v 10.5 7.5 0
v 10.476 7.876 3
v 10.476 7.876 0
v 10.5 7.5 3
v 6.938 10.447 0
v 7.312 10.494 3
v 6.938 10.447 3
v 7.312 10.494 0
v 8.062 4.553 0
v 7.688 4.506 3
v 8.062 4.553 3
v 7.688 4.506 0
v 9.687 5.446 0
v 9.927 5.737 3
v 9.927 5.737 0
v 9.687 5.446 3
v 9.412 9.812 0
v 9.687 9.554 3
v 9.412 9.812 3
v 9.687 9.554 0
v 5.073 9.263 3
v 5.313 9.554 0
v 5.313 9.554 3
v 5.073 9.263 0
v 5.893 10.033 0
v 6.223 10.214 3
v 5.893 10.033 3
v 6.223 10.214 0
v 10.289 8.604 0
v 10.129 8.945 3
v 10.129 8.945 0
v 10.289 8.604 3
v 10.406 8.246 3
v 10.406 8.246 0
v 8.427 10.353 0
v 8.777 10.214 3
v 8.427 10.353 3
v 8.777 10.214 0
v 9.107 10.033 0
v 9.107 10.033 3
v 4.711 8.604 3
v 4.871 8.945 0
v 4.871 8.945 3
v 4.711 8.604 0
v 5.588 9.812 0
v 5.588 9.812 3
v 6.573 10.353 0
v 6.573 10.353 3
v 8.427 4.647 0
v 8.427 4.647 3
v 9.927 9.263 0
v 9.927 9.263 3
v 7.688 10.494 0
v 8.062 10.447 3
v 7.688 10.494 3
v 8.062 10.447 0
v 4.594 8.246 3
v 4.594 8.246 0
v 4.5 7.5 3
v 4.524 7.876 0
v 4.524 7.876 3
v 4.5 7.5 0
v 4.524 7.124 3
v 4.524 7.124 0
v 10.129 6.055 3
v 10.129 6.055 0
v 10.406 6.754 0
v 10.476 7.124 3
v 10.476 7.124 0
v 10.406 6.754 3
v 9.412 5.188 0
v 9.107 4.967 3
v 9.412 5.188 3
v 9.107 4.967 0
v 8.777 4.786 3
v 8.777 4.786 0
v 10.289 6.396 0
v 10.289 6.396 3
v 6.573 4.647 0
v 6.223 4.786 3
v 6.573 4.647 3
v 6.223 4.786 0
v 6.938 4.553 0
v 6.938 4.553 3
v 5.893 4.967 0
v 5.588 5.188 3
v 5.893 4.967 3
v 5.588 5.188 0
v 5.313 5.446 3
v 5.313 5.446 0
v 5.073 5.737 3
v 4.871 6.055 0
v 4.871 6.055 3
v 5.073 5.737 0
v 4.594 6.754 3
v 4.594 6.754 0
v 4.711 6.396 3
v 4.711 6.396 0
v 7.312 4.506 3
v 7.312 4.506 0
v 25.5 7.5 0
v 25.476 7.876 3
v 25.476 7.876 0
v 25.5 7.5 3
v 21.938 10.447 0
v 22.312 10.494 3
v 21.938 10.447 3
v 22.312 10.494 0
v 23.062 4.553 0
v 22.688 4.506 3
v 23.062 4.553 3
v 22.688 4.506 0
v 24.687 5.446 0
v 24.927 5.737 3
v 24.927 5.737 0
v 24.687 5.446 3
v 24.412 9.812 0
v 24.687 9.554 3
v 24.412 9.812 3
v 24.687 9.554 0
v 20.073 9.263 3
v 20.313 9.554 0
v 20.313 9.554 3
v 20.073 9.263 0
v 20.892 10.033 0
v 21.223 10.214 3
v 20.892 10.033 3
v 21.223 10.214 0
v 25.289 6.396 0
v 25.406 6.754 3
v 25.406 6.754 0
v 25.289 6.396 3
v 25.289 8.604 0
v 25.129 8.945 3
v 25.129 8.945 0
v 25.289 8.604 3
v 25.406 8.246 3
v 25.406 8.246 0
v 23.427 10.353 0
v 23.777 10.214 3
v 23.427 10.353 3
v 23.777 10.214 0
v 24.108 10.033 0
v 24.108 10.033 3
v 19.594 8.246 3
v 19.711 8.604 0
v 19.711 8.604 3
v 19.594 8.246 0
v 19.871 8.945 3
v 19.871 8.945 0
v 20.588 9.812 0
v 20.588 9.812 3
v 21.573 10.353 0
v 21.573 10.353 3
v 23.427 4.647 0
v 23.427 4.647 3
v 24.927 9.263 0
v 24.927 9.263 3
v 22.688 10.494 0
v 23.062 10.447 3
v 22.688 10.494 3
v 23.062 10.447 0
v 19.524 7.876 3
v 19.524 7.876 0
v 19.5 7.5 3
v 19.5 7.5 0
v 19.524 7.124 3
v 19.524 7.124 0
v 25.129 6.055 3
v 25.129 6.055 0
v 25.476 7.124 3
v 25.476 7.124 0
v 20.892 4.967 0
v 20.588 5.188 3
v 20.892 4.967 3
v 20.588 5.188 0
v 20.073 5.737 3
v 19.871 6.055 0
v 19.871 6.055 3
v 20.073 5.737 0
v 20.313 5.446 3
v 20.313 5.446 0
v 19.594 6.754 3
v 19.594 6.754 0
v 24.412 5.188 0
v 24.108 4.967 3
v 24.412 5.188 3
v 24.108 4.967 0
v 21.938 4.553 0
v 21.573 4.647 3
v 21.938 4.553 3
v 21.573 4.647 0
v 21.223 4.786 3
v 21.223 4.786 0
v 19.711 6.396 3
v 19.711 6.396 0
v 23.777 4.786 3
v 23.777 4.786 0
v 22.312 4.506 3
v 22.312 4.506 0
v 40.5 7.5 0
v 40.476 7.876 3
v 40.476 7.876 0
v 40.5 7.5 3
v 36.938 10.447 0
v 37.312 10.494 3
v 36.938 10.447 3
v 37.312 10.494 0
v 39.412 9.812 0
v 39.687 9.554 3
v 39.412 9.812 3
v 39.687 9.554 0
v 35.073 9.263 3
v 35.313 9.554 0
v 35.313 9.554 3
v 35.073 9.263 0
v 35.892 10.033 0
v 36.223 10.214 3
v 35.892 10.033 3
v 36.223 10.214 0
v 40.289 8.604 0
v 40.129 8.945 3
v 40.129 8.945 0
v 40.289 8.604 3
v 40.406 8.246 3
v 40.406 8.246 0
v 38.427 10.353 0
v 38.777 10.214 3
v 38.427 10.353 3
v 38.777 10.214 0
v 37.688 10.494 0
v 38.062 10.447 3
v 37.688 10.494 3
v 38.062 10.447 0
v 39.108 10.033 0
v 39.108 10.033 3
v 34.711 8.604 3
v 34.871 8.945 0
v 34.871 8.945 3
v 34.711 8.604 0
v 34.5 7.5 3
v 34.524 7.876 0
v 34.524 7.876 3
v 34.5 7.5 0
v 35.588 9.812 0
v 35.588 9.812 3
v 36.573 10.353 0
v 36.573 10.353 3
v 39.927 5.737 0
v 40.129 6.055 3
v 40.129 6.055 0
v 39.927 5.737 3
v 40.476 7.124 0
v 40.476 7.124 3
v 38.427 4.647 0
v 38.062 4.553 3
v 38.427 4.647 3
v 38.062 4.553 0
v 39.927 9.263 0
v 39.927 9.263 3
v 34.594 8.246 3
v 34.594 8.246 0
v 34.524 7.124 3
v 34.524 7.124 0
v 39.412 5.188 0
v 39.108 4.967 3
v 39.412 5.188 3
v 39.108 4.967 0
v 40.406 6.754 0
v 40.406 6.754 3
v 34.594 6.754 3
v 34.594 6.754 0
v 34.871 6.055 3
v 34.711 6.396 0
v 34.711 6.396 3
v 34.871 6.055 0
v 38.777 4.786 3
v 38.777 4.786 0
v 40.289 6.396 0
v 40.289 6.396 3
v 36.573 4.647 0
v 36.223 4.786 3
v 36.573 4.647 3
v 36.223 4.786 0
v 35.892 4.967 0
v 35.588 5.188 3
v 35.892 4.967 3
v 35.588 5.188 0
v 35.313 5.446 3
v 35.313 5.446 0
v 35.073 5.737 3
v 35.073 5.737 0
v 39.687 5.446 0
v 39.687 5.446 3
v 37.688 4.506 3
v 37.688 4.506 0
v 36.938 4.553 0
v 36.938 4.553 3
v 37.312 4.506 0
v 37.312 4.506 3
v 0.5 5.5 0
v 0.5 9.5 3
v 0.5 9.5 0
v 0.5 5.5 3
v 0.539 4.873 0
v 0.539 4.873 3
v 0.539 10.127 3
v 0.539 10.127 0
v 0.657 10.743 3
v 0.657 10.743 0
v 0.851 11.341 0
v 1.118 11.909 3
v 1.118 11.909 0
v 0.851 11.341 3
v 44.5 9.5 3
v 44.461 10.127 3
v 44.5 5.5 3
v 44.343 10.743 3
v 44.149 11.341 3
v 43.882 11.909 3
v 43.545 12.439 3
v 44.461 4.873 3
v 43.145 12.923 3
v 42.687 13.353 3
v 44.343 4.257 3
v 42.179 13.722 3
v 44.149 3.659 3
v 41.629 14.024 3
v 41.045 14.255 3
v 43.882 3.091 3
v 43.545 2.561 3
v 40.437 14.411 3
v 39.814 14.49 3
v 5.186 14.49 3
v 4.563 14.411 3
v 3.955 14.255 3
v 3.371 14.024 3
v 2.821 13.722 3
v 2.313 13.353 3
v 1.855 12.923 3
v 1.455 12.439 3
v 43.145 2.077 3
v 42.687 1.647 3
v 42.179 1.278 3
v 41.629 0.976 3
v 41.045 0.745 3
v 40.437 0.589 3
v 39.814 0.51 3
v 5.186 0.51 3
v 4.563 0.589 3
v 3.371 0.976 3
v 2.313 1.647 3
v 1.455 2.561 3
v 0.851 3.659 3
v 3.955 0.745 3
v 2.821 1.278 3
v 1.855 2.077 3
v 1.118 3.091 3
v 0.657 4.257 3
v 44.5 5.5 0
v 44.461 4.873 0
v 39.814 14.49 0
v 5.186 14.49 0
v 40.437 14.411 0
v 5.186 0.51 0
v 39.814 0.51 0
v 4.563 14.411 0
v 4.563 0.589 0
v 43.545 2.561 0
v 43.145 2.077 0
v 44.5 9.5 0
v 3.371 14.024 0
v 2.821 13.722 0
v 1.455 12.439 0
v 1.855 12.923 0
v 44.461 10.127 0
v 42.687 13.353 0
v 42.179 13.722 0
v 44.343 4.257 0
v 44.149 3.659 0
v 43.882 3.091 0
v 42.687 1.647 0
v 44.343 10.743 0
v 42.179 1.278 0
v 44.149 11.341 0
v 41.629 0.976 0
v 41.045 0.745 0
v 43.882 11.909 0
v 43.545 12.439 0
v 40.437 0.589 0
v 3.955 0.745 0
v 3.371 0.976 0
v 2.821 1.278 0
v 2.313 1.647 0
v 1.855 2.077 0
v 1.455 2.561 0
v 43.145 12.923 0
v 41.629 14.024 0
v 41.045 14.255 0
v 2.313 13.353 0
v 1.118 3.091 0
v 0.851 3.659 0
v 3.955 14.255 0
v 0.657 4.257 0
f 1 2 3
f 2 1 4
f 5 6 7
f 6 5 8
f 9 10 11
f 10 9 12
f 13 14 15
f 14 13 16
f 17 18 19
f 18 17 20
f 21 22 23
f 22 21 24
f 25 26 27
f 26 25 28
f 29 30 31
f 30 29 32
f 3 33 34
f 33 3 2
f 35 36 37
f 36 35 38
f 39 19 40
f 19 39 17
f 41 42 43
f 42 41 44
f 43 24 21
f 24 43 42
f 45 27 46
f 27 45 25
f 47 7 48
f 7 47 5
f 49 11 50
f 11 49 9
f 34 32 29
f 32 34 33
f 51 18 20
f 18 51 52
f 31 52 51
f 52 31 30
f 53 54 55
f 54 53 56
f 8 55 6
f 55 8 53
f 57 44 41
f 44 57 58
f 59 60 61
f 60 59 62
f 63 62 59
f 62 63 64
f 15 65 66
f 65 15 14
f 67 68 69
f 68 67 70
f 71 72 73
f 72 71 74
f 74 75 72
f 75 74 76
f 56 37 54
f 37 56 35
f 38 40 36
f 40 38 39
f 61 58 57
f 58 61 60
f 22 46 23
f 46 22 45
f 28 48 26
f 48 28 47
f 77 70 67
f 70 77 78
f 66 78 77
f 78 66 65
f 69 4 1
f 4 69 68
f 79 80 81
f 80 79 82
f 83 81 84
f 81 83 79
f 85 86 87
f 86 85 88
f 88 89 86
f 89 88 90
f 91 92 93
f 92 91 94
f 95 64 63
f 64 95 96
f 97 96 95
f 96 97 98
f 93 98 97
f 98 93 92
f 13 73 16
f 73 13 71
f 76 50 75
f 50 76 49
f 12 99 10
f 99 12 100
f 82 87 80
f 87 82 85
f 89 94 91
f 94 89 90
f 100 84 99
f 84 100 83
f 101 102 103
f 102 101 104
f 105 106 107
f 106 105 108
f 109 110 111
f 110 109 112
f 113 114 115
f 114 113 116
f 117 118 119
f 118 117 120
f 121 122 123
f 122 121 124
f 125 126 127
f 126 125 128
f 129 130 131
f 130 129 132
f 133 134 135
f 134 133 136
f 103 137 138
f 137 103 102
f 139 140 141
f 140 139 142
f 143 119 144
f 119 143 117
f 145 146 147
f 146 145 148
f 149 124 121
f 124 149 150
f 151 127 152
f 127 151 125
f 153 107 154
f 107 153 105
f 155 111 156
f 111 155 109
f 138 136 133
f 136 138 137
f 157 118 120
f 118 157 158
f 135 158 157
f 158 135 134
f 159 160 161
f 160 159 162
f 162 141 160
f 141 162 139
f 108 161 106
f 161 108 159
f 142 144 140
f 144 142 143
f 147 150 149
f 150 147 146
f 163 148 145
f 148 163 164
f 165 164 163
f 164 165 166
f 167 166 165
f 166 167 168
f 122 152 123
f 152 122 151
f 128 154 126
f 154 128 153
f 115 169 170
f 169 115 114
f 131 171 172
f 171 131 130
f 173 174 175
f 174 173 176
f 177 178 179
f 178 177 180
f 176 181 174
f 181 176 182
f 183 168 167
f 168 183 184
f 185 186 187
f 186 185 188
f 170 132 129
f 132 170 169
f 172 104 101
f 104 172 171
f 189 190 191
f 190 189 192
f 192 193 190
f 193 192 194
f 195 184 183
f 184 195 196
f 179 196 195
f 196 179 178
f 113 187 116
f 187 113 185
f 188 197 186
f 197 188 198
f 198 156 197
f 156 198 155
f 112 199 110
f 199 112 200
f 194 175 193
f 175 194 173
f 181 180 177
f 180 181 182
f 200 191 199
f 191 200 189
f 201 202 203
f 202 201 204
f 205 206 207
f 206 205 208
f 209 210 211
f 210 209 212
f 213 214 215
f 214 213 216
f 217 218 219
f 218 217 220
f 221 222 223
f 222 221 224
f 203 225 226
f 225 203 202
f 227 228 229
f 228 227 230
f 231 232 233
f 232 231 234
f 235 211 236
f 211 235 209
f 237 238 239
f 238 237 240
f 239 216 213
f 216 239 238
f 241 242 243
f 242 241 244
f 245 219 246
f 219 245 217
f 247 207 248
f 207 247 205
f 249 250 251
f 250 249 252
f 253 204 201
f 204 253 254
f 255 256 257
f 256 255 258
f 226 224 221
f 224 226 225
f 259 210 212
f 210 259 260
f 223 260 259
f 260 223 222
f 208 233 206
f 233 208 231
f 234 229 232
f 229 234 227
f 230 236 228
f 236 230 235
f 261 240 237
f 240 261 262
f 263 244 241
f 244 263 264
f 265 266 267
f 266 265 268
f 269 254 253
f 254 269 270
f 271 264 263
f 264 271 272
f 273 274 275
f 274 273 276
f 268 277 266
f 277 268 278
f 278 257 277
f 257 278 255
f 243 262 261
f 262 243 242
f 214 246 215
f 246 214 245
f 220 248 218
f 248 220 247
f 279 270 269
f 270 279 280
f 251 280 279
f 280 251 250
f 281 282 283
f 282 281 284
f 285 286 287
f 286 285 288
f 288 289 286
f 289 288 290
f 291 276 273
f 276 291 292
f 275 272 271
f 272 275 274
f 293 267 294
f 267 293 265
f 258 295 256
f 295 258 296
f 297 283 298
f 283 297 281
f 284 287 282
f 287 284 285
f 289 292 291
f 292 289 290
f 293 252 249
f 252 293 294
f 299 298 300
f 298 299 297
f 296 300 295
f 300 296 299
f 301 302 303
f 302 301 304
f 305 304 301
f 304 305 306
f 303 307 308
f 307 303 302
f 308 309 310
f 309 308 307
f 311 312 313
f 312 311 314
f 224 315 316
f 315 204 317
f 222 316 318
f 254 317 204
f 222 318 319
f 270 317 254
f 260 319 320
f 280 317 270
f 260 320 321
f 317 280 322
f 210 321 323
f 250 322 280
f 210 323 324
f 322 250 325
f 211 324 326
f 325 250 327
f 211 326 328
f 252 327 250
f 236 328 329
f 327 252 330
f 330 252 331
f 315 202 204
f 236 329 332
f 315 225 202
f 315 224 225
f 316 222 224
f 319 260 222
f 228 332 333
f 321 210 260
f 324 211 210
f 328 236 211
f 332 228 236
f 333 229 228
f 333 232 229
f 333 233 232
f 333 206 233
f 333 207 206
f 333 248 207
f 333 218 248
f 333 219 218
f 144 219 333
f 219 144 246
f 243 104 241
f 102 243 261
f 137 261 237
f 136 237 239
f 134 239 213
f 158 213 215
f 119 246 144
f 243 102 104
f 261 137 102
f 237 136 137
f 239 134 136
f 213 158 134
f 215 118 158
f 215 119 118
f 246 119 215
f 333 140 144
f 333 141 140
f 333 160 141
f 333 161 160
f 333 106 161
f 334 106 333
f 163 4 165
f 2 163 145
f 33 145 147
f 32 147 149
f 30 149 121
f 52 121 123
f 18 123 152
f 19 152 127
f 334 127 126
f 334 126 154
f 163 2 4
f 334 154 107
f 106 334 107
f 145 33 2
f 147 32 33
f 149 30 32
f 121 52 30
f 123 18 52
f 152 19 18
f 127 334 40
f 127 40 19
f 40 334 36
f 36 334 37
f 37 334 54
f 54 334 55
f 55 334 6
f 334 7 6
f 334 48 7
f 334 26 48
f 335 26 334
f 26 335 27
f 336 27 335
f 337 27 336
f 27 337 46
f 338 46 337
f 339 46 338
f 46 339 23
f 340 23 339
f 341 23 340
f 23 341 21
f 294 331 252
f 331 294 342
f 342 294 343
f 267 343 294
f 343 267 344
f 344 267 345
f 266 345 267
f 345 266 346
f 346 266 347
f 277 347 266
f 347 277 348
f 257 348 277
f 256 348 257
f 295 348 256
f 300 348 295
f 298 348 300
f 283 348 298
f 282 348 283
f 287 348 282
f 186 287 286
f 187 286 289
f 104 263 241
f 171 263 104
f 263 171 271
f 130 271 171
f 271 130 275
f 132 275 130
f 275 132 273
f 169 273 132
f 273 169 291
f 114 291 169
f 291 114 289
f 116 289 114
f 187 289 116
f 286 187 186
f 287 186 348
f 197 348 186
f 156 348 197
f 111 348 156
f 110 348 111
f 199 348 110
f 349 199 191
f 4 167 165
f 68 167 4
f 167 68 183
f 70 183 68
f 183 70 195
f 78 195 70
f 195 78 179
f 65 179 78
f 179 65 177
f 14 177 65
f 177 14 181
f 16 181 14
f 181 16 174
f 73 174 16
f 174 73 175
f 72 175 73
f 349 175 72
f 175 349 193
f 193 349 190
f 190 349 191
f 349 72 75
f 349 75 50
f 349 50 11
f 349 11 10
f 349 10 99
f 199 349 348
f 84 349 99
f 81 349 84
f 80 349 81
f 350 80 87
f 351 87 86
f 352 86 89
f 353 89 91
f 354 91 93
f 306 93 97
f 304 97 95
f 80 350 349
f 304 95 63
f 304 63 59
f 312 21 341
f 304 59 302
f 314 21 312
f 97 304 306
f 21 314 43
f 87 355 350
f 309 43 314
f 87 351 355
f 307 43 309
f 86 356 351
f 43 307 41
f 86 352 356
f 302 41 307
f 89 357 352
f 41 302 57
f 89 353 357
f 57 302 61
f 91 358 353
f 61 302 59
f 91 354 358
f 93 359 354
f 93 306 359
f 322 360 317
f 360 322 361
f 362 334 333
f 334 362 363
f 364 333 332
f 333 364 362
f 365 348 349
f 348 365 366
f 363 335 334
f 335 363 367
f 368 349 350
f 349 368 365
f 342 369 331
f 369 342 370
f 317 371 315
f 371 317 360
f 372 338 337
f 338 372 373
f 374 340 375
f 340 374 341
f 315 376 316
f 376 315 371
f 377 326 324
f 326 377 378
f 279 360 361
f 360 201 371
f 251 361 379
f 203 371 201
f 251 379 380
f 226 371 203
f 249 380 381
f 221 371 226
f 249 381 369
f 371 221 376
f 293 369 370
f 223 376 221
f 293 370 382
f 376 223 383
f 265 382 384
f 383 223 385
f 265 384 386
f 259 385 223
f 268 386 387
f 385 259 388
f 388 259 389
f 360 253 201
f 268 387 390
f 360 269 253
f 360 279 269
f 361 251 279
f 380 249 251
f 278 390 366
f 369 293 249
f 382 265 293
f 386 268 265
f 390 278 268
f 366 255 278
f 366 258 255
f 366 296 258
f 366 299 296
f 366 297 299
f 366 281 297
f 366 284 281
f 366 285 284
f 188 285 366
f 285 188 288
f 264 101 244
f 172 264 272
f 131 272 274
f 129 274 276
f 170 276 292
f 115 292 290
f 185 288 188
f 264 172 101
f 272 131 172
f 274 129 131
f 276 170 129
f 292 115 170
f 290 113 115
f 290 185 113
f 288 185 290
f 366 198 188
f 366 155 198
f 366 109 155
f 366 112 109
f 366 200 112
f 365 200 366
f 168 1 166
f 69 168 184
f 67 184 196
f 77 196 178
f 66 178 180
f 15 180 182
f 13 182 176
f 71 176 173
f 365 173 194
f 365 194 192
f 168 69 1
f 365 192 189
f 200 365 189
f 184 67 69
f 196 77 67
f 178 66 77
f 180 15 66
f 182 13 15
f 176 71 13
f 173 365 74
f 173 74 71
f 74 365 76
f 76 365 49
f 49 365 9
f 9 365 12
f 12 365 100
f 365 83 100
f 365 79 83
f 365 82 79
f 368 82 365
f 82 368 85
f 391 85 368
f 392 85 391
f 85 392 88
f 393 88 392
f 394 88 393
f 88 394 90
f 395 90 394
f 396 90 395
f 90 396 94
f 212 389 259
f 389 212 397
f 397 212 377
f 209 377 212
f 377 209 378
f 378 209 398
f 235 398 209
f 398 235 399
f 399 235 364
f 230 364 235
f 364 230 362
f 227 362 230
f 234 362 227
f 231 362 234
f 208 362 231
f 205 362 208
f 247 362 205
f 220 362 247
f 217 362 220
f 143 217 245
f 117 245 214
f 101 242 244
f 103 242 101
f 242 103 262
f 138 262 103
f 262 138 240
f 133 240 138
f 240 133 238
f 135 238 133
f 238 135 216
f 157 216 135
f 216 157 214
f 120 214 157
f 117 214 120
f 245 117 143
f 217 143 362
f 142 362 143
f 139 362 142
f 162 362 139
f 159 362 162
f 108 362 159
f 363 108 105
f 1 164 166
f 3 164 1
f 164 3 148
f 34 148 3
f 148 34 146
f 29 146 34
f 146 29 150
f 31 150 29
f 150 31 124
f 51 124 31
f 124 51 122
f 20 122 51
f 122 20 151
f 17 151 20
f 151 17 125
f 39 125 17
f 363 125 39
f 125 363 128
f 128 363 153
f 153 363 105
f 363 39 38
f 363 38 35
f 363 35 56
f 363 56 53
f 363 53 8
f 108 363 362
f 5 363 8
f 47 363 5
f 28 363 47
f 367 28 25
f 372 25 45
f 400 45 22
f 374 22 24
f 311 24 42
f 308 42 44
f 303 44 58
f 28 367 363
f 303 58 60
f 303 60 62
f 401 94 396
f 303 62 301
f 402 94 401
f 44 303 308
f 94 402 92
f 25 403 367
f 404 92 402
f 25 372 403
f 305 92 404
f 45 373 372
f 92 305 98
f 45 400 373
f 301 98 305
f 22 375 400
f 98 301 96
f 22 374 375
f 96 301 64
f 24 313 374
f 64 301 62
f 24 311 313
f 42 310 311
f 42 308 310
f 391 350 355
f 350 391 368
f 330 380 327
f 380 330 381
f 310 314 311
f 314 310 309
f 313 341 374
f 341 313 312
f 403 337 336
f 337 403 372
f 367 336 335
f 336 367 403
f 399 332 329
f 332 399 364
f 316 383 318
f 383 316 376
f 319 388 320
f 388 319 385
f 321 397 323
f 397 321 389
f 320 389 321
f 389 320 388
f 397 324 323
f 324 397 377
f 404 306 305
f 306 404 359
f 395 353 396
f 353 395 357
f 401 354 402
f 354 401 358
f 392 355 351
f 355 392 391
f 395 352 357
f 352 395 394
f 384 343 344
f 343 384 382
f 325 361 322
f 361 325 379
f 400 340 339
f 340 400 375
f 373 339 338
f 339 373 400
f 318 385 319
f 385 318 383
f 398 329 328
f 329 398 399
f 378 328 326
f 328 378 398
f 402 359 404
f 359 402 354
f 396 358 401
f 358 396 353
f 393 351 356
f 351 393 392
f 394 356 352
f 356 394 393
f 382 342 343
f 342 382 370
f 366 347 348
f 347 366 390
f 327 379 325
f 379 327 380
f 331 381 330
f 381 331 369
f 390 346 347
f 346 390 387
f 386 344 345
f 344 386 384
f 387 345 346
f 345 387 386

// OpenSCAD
// Generated by SolidPython 1.1.3 on 2023-01-09 14:53:02
$fn = 50;


difference() {
	union() {
		translate(v = [22.5000000000, 7.5000000000, 0]) {
			rotate(a = [0, 0, 0]) {
				hull() {
					translate(v = [-17.0000000000, 2.0000000000, 0]) {
						rotate(a = [0, 0, 0]) {
							translate(v = [0, 0, 0]) {
								rotate(a = [0, 0, 0]) {
									cylinder(h = 3, r = 5);
								}
							}
						}
					}
					translate(v = [17.0000000000, 2.0000000000, 0]) {
						rotate(a = [0, 0, 0]) {
							translate(v = [0, 0, 0]) {
								rotate(a = [0, 0, 0]) {
									cylinder(h = 3, r = 5);
								}
							}
						}
					}
					translate(v = [-17.0000000000, -2.0000000000, 0]) {
						rotate(a = [0, 0, 0]) {
							translate(v = [0, 0, 0]) {
								rotate(a = [0, 0, 0]) {
									cylinder(h = 3, r = 5);
								}
							}
						}
					}
					translate(v = [17.0000000000, -2.0000000000, 0]) {
						rotate(a = [0, 0, 0]) {
							translate(v = [0, 0, 0]) {
								rotate(a = [0, 0, 0]) {
									cylinder(h = 3, r = 5);
								}
							}
						}
					}
				}
			}
		}
	}
	union() {
		translate(v = [7.5000000000, 7.5000000000, 0]) {
			rotate(a = [0, 0, 0]) {
				translate(v = [0, 0, -50]) {
					rotate(a = [0, 0, 0]) {
						cylinder(h = 100, r = 3.0000000000);
					}
				}
			}
		}
		translate(v = [22.5000000000, 7.5000000000, 0]) {
			rotate(a = [0, 0, 0]) {
				translate(v = [0, 0, -50]) {
					rotate(a = [0, 0, 0]) {
						cylinder(h = 100, r = 3.0000000000);
					}
				}
			}
		}
		translate(v = [37.5000000000, 7.5000000000, 0]) {
			rotate(a = [0, 0, 0]) {
				translate(v = [0, 0, -50]) {
					rotate(a = [0, 0, 0]) {
						cylinder(h = 100, r = 3.0000000000);
					}
				}
			}
		}
	}
}
/***********************************************
*********      SolidPython code:      **********
************************************************
 
from solid import *
import os
import subprocess

import oomB

import opsc_library_gen

mode = "laser"
#mode = "3d_print"

defined_objects = {}

radius_dict = {}
countersunk_dict = {}


def set_mode(m):
    global mode
    mode = m
    radius_dict['M6'] = 6.5/2
    radius_dict['M3'] = 3.3/2
    if mode == "laser":
        radius_dict['M6'] = 6/2
        radius_dict['M3'] = 3/2

    countersunk_dict['M3'] = {}
    countersunk_dict['M3']['little_rad'] = radius_dict['M3']
    countersunk_dict['M3']['big_rad'] = (5.5+0.6)/2
    if mode == "laser":
        countersunk_dict['M3']['big_rad'] = (4.75+0.6)/2
        countersunk_dict['M3']['little_rad'] = (4.75+0.6)/2

    countersunk_dict['M3']['height'] = 1.7


def opsc_make_object(filename, objects, save_type="none",resolution=50, layers = 1, tilediff = 200, mode="laser"):
    set_mode(mode)
    save_type = save_type.lower()
    os.makedirs(os.path.dirname(filename), exist_ok=True)
    final_object = opsc_get_object(objects)
    # Save the final object to the specified filename    
    scad_render_to_file(final_object, filename, file_header='$fn = %s;' % resolution, include_orig_code=True)
    if mode == "laser":
        filename_laser = filename.replace(".scad","-flat.scad")
        scad_render_to_file(getLaser(final_object, layers=layers, tilediff=tilediff), filename_laser, file_header='$fn = %s;' % resolution, include_orig_code=True)
        if save_type == "all":
            saveToAll(filename_laser)
        elif save_type == "dxf":
            saveToDxf(filename_laser)
    if save_type == "all":
        saveToAll(filename)
    elif save_type == "dxf":
        saveToDxf(filename)


def opsc_get_object(objects):
    # Create the solidpython objects
    positive_objects = [get_opsc_item(obj) for obj in objects if obj['type'] == 'positive']
    negative_objects = [get_opsc_item(obj) for obj in objects if obj['type'] == 'negative']
    # Union the positive objects
    positive_object = union()(*positive_objects)
    # Union the negative objects
    negative_object = union()(*negative_objects)
    # Create the final object by subtracting the negative objects from the positive objects
    return difference()(positive_object, negative_object)

def get_opsc_item(params):
    # A dictionary to map radius string values to numerical values
    #radius_dict = {'small': 5, 'medium': 10, 'large': 15}
    # An array of function names for basic shapes
    basic_shapes = ['cube', 'sphere', 'cylinder']
    
    # An array of function names for other shapes
    other_shapes = ['hole', 'slot', 'rounded_rectangle', 'countersunk']
    


    # Convert radius to r if present, and remove radius from the params dictionary
    if 'radius' in params:
        if isinstance(params['radius'], str):
            # Use the radius_dict to map the radius string value to a numerical value
            params['r'] = radius_dict[params['radius']]
        else:
            params['r'] = params['radius']
        del params['radius']
    

    # Check if the object type is a basic shape
    if params['shape'] in basic_shapes:
        # Remove shape and unexpected dictionary values
        allowed_keys = {'size', 'r', 'r1', 'r2', 'd', 'h', 'rw', 'rh', 'dw', 'dh'}
        shape_params = {k: v for k, v in params.items() if k in allowed_keys}

        # Call the corresponding function for the shape parameter, using ** notation to pass the shape_params dictionary as keyword arguments
        return get_opsc_transform(params,globals()[params['shape']](**shape_params))
    
    # If the object type is not a basic shape, check if it's a defined object or one of the other shapes
    elif params['shape'] in other_shapes:
        # Call the corresponding function for the shape parameter, passing the params dictionary as an argument
        p2 = copy.deepcopy(params)
        p2["pos"] = [0,0,0]
        return get_opsc_transform(params,globals()[params['shape']](p2))
    
    # If the object is not a basic shape or a defined object, try to import it from a .scad file
    else:
        obj = defined_objects[params['shape']]
        return get_opsc_transform(params,obj)

def get_opsc_transform(params, solid_obj):
    # Rotate the object based on the 'rot' field in the params dictionary, or the 'rotX', 'rotY', and 'rotZ' fields if 'rot' is not present
    rot = params.get('rot', [])
    if rot:
        rotX, rotY, rotZ = rot
    else:
        rotX = params.get('rotX', 0)
        rotY = params.get('rotY', 0)
        rotZ = params.get('rotZ', 0)
    solid_obj = rotate([rotX, rotY, rotZ])(solid_obj)

    # Translate the object based on the 'pos' field in the params dictionary, or the 'x', 'y', and 'z' fields if 'pos' is not present
    pos = params.get('pos', [])
    if pos:
        x, y, z = pos
    else:
        x = params.get('x', 0)
        y = params.get('y', 0)
        z = params.get('z', 0)
    solid_obj = translate([x, y, z])(solid_obj)
    return solid_obj


import random

def opsc_easy_array(type, shape, repeats, pos_start, shift_arr, **kwargs):
    for i in range(0,3):
        repeats.append(1)
        pos_start.append(0)
        shift_arr.append(0)
    return_objects = []

    for x in range(0,repeats[0]):
        for y in range(0,repeats[1]):
            for z in range(0,repeats[2]):
                return_objects.append(opsc_easy(type, shape, pos=[pos_start[0]+x*shift_arr[0],pos_start[1]+y*shift_arr[1],pos_start[2]+z*shift_arr[2]], **kwargs))
    return return_objects                



def opsc_easy(type, shape, **kwargs):
    obj = {
        'type': type,
        'shape': shape
    }
    for param in ['size', 'r', 'r1', 'r2', 'd', 'h', 'rw', 'rh', 'dw', 'dh', 'pos', 'x', 'y', 'z', 'rot', 'rotX', 'rotY', 'rotZ', "w"]:
        if param in kwargs:
            obj[param] = kwargs[param]
    return obj

def hole(params):
    p2 = copy.deepcopy(params)  
    # Check if the radius is a string and replace it with the corresponding value from the dictionary
    if isinstance(p2['r'], str):
        p2['r'] = radius_dict[p2['r']]
    
    # Set the height to 100 if not specified
    if 'h' not in p2:
        p2['h'] = 100
        p2["pos"] = [0,0,-50]
    p2["center"] = True
    # Create the cylinder object
    p2["shape"] = "cylinder"
    p2["type"] = "positive"

    return get_opsc_item(p2)

import copy

def countersunk(params):
    p2 = copy.deepcopy(params)
    counter_rad = p2['r']
    p2['r'] = radius_dict[p2['r']]
    hp = copy.deepcopy(p2)
    hp["type"] = "positive"
    hp["shape"] = "hole"
    del hp["rot"]
    hol = get_opsc_item(hp)
    
    cp = copy.deepcopy(p2)
    cp["h"] = countersunk_dict[counter_rad]["height"]
    cp["r2"] = countersunk_dict[counter_rad]["little_rad"]
    cp["r1"] = countersunk_dict[counter_rad]["big_rad"]
    del cp["r"]
    del cp["rot"]
    cp["type"] = "positive"
    cp["shape"] = "cylinder"
    cp["pos"] = [0,0,0]

    top = get_opsc_item(cp)
    return union()(hol,top)



def slot(params):  
    p2 = copy.deepcopy(params) 
    if isinstance(p2['r'], str):
        p2['r'] = radius_dict[p2['r']]
    p2["type"] = "positive"
    p2["shape"] = "hole"
    del p2["rot"]
    p2["pos"] = [0,0,0]
    left = copy.deepcopy(p2)
    right = copy.deepcopy(p2)
    left["pos"][0] = p2["w"] / 2 - p2["r"] 
    
    right["pos"][0] = -p2["w"] / 2 + p2["r"] 
    pass
    leftObj = get_opsc_item(left)
    rightObj = get_opsc_item(right)
    return hull()(leftObj, rightObj)

def rounded_rectangle(params):   
    p2 = copy.deepcopy(params) 
    p2["h"] = p2["size"][2]
    p2["pos"] = p2.get("pos", [0, 0, 0]) 
    p2["type"] = "positive"
    p2["shape"] = "hole"
    p2["pos"] = [0,0,0]
    
    if 'rot' in p2:
        del p2["rot"]   
    if 'r' not in p2:
        p2["r"] = 5 
    tl = copy.deepcopy(p2)
    tr = copy.deepcopy(p2)
    bl = copy.deepcopy(p2)
    br = copy.deepcopy(p2)
    tl["pos"][0] = -(p2["size"][0] - p2["r"]*2)/2
    tl["pos"][1] = (p2["size"][1] - p2["r"]*2)/2
    tr["pos"][0] = (p2["size"][0] - p2["r"]*2)/2
    tr["pos"][1] = (p2["size"][1] - p2["r"]*2)/2
    bl["pos"][0] = -(p2["size"][0] - p2["r"]*2)/2
    bl["pos"][1] = -(p2["size"][1] - p2["r"]*2)/2
    br["pos"][0] = (p2["size"][0] - p2["r"]*2)/2
    br["pos"][1] = -(p2["size"][1] - p2["r"]*2)/2
    del tl["size"]
    del tr["size"]
    del bl["size"]
    del br["size"]
    tlo = get_opsc_item(tl)
    tro = get_opsc_item(tr)
    blo = get_opsc_item(bl)
    bro = get_opsc_item(br)    
    return hull()(tlo, tro, blo, bro)



def import_scad_object(filename):
    # Import the .scad file and convert it to a solidpython object
    #filename = "parts"
    obj = import_scad(filename)
    return obj.main()
    


import os
import solid as solidpython

# A dictionary to store the defined objects


def load_scad_objects():
    opsc_library_gen.gen_library(defined_objects)

import random

def test(num_objects):
    objects = []
    for i in range(num_objects):
        # Choose a random shape
        #shape = random.choice(['cube', 'sphere', 'cylinder', 'hole', 'slot', "rounded_rectangle"])
        shape = random.choice(["rounded_rectangle"])

        # Choose a random type
        type = random.choice(['positive', 'negative'])
        
        # Create an empty object dictionary
        obj = {'shape': shape, 'type': type}
        
        # Set shape-specific parameters
        if obj['shape'] in ['cube']:
            obj['size'] =  [random.uniform(5, 15), random.uniform(5, 15), random.uniform(5, 15)]
        if obj['shape'] in ['rounded_rectangle']:
            obj['size'] =  [random.uniform(5, 15), random.uniform(5, 15), random.uniform(5, 15)]
            obj['r'] = random.uniform(0.5, 5)
        elif obj['shape'] == 'sphere':
            obj['r'] = random.uniform(5, 15)
        elif obj['shape'] in ['cylinder', 'hole']:
            obj['r'] = random.uniform(0.5, 5)
            obj['h'] = random.uniform(5, 15)
        elif obj['shape'] == 'slot':
            obj['r'] = random.uniform(0.5, 5)
            obj['h'] = random.uniform(5, 15)
            obj['w'] = random.uniform(5, 15)
        
        # Set a random position and rotation
        obj['pos'] = [random.uniform(-20, 20), random.uniform(-20, 20), random.uniform(-20, 20)]
        obj['rot'] = [random.uniform(-180, 180), random.uniform(-180, 180), random.uniform(-180, 180)]
        
        # Add the object to the list
        objects.append(obj)
    return objects

####### old file saving
def saveToAll(fileIn):
    saveToDxf(fileIn)
    saveToPng(fileIn)
    saveToStl(fileIn)
    saveToSvg(fileIn)

def saveToDxf(fileIn, fileOut="", copy_to_laser=True):
    if fileOut == "":
        fileOut = fileIn.replace(".scad",".dxf")
    saveToFile(fileIn, fileOut)


    
def saveToPng(fileIn, fileOut="",extra="--render"):
    if fileOut == "":
        fileOut = fileIn.replace(".scad",".png")
    saveToFile(fileIn, fileOut)

def saveToStl(fileIn, fileOut=""):
    if fileOut == "":
        fileOut = fileIn.replace(".scad",".stl")
    saveToFile(fileIn, fileOut)
    
def saveToSvg(fileIn, fileOut=""):
    if fileOut == "":
        fileOut = fileIn.replace(".scad",".svg")
    saveToFile(fileIn, fileOut)

def saveToFile(fileIn, fileOut,extra=""):
    #extra = extra + " --colorscheme Tomorrow"

    launchStr = 'openscad -o "' + fileOut + '"' + extra + ' "' + fileIn + '"'
    if ".png" in fileOut:
        launchStr = launchStr + " --render"
    print("            saveToFile launch string: " + launchStr)
    subprocess.run(launchStr)
    x=0

def getLaser(final_object,start=1.5,layers=1,thickness=3,tilediff=200):
        rv= []

        for x in range(layers):
            rv.append(translate([0,x*tilediff,0])(
                    projection()(
                        intersection()(translate([-500,-500,start+x*thickness])(cube(size=[1000,1000,0.1])),
                            final_object
                        )
                    )
            )
            )
            
        return union()(rv)

set_mode("laser")
load_scad_objects() 
 
************************************************/
